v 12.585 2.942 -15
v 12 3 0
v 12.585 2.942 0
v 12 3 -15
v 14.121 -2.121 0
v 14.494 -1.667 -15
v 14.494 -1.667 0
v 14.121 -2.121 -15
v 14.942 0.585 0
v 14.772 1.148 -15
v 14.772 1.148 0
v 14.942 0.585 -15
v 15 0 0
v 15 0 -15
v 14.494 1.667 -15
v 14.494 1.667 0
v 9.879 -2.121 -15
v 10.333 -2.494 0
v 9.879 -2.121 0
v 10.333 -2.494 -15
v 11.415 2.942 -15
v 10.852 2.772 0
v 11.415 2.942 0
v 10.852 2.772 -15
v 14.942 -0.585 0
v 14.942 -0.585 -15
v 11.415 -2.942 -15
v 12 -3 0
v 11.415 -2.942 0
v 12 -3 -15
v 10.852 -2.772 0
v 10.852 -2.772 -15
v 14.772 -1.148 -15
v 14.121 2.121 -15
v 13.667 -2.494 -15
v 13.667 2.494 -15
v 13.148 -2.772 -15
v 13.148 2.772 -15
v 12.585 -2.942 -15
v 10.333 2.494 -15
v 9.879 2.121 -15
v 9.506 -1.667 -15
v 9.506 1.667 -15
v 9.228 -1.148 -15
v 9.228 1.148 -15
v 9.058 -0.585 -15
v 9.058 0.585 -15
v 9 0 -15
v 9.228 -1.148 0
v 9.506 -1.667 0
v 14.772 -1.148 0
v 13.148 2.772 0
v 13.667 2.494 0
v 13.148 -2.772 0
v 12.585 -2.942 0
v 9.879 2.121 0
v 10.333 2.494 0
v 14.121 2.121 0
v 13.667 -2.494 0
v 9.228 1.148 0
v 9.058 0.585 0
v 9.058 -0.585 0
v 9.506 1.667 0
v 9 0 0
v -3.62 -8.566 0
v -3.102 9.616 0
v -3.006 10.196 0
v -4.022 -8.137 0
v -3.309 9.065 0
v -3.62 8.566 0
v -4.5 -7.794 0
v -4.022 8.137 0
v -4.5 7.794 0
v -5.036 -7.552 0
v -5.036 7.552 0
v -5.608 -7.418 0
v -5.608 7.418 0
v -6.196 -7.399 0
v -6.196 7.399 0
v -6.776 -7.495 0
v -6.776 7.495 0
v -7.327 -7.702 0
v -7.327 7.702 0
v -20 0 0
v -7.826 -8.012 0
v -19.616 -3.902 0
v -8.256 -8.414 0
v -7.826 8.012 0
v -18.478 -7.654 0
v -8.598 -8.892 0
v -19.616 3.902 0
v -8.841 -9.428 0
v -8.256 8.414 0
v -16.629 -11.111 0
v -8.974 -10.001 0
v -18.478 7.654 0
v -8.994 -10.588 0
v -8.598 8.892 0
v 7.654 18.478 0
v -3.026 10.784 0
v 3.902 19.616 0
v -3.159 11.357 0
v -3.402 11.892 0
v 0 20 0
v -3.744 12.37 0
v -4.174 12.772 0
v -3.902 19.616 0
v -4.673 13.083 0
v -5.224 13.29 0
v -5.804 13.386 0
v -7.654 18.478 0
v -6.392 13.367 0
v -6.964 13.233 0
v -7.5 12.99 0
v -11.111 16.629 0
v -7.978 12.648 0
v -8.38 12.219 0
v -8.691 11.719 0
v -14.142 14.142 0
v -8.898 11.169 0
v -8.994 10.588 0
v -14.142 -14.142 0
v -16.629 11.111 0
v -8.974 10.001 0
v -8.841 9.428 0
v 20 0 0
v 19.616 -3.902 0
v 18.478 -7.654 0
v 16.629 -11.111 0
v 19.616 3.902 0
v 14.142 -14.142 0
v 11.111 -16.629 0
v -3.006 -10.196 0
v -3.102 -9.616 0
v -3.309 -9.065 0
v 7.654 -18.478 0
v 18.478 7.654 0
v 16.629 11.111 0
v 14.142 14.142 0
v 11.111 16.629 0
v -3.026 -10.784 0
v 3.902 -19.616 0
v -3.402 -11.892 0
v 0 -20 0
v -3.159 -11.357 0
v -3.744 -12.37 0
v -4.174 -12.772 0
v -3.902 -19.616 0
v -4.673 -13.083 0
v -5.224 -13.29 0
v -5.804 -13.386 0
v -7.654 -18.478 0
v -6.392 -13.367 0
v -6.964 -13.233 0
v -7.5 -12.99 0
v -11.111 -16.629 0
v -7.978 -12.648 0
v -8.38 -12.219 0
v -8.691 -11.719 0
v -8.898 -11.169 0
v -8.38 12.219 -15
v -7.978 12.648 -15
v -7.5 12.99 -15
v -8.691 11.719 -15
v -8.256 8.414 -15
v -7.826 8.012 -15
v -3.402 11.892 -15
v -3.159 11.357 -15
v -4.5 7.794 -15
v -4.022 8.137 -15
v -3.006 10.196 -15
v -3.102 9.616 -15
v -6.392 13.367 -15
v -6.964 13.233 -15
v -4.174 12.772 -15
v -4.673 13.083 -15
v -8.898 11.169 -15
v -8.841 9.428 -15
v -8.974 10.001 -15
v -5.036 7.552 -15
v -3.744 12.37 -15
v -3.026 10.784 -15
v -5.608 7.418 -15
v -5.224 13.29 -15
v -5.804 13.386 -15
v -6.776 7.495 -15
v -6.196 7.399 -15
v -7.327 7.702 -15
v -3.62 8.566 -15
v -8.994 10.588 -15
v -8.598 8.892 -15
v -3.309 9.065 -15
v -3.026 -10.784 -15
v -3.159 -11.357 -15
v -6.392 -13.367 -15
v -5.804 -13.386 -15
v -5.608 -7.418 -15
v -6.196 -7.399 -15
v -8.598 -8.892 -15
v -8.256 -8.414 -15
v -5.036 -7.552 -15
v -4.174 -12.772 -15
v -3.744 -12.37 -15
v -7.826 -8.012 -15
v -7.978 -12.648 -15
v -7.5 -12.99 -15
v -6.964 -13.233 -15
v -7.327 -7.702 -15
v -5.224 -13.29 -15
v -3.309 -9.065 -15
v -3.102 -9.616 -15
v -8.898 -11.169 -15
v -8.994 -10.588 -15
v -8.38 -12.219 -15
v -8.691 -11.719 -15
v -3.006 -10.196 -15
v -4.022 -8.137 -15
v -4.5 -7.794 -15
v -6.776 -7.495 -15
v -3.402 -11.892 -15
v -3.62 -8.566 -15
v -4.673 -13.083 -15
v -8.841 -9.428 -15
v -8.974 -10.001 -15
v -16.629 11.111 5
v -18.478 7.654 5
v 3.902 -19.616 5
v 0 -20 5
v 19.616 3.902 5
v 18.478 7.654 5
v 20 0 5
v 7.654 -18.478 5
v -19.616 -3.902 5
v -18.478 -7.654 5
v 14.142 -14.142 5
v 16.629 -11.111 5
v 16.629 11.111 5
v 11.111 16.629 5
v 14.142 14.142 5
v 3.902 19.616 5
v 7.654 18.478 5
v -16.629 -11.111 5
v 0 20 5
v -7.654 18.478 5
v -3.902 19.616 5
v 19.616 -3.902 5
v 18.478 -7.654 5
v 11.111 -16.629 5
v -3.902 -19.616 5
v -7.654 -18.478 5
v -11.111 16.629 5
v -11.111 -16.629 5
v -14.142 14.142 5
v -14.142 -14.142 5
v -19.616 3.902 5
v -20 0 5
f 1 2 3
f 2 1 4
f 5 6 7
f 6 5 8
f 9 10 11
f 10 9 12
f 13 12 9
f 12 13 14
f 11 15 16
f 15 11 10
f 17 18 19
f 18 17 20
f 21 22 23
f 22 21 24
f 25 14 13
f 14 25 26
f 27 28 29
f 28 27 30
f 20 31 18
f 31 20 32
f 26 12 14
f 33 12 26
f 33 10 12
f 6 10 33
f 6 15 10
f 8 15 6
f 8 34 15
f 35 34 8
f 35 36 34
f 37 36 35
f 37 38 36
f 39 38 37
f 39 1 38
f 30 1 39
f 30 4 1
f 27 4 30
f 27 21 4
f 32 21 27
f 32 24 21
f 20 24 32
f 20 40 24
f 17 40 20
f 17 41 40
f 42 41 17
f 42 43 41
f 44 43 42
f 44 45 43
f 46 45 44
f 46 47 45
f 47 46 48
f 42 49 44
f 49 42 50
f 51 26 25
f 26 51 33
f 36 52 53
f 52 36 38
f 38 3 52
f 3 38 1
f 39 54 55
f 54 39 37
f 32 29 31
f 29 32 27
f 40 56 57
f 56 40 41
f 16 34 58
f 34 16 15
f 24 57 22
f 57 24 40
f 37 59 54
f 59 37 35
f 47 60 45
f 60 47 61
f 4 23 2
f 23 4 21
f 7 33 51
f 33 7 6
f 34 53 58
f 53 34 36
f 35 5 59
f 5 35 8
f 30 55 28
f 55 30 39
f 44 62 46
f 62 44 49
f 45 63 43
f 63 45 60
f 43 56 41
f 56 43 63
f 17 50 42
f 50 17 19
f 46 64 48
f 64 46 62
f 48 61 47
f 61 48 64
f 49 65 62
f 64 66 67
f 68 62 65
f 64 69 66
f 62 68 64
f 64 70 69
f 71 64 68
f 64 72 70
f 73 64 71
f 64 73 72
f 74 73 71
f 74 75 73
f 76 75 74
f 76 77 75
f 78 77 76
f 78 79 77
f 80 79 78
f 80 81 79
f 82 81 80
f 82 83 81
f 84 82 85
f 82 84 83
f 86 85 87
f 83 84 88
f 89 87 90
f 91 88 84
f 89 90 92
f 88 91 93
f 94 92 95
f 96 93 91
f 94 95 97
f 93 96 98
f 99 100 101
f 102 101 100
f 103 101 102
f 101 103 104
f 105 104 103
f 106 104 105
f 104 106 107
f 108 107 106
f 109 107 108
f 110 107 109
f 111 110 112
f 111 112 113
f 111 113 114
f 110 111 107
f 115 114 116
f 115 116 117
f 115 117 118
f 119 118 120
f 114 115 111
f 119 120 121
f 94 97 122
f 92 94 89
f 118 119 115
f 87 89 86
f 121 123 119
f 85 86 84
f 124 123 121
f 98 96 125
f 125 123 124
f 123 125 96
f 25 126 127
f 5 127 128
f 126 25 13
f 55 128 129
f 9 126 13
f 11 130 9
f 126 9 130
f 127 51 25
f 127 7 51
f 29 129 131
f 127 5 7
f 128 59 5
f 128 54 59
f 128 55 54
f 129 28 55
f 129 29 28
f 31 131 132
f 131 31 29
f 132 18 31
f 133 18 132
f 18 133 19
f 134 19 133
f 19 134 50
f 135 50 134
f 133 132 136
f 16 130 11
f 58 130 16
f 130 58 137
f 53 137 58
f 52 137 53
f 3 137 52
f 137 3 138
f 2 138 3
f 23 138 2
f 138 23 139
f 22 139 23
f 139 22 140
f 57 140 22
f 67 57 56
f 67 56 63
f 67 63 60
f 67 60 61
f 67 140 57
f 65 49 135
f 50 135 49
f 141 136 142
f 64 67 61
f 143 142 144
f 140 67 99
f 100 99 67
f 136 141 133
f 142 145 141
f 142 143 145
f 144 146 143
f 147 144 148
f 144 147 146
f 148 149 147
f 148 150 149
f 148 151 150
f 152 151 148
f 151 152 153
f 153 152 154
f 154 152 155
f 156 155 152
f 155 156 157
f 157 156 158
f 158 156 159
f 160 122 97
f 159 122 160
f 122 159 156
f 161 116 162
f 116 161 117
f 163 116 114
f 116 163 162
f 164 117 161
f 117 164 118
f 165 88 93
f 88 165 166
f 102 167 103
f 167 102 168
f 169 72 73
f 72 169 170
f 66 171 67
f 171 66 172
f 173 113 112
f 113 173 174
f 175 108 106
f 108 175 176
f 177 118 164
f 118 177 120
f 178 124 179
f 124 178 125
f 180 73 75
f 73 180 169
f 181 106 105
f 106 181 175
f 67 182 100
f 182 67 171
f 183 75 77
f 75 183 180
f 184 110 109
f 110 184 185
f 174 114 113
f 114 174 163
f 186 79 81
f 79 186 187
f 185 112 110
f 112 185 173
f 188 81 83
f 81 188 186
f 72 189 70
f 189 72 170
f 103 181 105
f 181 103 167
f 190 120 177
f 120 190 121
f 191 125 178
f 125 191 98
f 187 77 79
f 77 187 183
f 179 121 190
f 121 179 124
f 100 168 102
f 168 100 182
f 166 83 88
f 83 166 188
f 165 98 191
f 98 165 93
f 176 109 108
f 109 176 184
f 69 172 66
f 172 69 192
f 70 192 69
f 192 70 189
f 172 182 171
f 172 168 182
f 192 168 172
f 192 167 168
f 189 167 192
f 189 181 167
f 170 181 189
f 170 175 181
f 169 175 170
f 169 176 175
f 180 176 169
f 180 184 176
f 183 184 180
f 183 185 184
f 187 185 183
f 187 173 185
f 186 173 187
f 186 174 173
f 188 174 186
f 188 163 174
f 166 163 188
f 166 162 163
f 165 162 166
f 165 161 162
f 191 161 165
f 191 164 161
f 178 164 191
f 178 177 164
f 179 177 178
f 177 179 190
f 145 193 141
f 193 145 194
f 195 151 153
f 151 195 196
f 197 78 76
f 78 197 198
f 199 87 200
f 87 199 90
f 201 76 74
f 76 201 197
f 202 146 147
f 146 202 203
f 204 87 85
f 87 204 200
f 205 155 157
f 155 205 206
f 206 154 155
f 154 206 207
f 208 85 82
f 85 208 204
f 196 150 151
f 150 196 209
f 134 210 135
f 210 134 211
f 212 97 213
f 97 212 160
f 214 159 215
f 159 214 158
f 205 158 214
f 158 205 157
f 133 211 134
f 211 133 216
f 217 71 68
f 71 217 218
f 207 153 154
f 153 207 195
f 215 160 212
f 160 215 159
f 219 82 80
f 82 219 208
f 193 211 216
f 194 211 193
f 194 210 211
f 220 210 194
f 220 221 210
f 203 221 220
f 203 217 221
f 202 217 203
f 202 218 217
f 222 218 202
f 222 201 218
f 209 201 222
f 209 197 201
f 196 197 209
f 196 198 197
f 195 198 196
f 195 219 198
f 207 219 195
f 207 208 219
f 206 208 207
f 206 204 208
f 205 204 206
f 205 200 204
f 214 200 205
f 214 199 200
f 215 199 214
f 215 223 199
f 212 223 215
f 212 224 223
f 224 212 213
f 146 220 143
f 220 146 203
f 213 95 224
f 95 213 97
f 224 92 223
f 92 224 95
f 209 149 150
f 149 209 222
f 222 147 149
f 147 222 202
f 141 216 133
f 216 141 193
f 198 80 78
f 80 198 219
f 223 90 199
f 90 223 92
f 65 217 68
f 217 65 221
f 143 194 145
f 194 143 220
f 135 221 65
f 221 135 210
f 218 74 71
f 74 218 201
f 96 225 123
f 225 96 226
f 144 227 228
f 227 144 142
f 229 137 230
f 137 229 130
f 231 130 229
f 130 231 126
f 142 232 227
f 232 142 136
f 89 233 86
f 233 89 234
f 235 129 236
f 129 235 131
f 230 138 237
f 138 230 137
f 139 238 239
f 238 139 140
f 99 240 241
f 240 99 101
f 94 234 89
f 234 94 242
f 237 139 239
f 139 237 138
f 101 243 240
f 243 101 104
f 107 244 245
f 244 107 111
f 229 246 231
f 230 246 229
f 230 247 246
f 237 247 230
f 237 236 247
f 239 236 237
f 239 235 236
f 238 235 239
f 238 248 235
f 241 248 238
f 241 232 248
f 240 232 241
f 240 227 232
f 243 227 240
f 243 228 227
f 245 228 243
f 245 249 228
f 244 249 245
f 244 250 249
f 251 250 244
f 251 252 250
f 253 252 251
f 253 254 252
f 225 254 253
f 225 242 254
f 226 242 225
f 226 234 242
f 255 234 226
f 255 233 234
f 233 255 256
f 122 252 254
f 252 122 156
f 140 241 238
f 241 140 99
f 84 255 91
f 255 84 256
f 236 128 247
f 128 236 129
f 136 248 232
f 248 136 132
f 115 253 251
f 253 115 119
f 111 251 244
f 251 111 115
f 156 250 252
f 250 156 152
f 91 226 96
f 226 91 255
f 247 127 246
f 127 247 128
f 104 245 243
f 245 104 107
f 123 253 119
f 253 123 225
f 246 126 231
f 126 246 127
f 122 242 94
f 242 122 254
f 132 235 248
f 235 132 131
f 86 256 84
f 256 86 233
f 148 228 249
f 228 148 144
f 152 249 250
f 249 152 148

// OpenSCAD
$fn = 32;

// Seat
cylinder(h=5, r=20);

// Legs
for (angle = [0, 120, 240]) {
    rotate([0, 0, angle])
    translate([12, 0, -15])
    cylinder(h=15, r=3);
}
